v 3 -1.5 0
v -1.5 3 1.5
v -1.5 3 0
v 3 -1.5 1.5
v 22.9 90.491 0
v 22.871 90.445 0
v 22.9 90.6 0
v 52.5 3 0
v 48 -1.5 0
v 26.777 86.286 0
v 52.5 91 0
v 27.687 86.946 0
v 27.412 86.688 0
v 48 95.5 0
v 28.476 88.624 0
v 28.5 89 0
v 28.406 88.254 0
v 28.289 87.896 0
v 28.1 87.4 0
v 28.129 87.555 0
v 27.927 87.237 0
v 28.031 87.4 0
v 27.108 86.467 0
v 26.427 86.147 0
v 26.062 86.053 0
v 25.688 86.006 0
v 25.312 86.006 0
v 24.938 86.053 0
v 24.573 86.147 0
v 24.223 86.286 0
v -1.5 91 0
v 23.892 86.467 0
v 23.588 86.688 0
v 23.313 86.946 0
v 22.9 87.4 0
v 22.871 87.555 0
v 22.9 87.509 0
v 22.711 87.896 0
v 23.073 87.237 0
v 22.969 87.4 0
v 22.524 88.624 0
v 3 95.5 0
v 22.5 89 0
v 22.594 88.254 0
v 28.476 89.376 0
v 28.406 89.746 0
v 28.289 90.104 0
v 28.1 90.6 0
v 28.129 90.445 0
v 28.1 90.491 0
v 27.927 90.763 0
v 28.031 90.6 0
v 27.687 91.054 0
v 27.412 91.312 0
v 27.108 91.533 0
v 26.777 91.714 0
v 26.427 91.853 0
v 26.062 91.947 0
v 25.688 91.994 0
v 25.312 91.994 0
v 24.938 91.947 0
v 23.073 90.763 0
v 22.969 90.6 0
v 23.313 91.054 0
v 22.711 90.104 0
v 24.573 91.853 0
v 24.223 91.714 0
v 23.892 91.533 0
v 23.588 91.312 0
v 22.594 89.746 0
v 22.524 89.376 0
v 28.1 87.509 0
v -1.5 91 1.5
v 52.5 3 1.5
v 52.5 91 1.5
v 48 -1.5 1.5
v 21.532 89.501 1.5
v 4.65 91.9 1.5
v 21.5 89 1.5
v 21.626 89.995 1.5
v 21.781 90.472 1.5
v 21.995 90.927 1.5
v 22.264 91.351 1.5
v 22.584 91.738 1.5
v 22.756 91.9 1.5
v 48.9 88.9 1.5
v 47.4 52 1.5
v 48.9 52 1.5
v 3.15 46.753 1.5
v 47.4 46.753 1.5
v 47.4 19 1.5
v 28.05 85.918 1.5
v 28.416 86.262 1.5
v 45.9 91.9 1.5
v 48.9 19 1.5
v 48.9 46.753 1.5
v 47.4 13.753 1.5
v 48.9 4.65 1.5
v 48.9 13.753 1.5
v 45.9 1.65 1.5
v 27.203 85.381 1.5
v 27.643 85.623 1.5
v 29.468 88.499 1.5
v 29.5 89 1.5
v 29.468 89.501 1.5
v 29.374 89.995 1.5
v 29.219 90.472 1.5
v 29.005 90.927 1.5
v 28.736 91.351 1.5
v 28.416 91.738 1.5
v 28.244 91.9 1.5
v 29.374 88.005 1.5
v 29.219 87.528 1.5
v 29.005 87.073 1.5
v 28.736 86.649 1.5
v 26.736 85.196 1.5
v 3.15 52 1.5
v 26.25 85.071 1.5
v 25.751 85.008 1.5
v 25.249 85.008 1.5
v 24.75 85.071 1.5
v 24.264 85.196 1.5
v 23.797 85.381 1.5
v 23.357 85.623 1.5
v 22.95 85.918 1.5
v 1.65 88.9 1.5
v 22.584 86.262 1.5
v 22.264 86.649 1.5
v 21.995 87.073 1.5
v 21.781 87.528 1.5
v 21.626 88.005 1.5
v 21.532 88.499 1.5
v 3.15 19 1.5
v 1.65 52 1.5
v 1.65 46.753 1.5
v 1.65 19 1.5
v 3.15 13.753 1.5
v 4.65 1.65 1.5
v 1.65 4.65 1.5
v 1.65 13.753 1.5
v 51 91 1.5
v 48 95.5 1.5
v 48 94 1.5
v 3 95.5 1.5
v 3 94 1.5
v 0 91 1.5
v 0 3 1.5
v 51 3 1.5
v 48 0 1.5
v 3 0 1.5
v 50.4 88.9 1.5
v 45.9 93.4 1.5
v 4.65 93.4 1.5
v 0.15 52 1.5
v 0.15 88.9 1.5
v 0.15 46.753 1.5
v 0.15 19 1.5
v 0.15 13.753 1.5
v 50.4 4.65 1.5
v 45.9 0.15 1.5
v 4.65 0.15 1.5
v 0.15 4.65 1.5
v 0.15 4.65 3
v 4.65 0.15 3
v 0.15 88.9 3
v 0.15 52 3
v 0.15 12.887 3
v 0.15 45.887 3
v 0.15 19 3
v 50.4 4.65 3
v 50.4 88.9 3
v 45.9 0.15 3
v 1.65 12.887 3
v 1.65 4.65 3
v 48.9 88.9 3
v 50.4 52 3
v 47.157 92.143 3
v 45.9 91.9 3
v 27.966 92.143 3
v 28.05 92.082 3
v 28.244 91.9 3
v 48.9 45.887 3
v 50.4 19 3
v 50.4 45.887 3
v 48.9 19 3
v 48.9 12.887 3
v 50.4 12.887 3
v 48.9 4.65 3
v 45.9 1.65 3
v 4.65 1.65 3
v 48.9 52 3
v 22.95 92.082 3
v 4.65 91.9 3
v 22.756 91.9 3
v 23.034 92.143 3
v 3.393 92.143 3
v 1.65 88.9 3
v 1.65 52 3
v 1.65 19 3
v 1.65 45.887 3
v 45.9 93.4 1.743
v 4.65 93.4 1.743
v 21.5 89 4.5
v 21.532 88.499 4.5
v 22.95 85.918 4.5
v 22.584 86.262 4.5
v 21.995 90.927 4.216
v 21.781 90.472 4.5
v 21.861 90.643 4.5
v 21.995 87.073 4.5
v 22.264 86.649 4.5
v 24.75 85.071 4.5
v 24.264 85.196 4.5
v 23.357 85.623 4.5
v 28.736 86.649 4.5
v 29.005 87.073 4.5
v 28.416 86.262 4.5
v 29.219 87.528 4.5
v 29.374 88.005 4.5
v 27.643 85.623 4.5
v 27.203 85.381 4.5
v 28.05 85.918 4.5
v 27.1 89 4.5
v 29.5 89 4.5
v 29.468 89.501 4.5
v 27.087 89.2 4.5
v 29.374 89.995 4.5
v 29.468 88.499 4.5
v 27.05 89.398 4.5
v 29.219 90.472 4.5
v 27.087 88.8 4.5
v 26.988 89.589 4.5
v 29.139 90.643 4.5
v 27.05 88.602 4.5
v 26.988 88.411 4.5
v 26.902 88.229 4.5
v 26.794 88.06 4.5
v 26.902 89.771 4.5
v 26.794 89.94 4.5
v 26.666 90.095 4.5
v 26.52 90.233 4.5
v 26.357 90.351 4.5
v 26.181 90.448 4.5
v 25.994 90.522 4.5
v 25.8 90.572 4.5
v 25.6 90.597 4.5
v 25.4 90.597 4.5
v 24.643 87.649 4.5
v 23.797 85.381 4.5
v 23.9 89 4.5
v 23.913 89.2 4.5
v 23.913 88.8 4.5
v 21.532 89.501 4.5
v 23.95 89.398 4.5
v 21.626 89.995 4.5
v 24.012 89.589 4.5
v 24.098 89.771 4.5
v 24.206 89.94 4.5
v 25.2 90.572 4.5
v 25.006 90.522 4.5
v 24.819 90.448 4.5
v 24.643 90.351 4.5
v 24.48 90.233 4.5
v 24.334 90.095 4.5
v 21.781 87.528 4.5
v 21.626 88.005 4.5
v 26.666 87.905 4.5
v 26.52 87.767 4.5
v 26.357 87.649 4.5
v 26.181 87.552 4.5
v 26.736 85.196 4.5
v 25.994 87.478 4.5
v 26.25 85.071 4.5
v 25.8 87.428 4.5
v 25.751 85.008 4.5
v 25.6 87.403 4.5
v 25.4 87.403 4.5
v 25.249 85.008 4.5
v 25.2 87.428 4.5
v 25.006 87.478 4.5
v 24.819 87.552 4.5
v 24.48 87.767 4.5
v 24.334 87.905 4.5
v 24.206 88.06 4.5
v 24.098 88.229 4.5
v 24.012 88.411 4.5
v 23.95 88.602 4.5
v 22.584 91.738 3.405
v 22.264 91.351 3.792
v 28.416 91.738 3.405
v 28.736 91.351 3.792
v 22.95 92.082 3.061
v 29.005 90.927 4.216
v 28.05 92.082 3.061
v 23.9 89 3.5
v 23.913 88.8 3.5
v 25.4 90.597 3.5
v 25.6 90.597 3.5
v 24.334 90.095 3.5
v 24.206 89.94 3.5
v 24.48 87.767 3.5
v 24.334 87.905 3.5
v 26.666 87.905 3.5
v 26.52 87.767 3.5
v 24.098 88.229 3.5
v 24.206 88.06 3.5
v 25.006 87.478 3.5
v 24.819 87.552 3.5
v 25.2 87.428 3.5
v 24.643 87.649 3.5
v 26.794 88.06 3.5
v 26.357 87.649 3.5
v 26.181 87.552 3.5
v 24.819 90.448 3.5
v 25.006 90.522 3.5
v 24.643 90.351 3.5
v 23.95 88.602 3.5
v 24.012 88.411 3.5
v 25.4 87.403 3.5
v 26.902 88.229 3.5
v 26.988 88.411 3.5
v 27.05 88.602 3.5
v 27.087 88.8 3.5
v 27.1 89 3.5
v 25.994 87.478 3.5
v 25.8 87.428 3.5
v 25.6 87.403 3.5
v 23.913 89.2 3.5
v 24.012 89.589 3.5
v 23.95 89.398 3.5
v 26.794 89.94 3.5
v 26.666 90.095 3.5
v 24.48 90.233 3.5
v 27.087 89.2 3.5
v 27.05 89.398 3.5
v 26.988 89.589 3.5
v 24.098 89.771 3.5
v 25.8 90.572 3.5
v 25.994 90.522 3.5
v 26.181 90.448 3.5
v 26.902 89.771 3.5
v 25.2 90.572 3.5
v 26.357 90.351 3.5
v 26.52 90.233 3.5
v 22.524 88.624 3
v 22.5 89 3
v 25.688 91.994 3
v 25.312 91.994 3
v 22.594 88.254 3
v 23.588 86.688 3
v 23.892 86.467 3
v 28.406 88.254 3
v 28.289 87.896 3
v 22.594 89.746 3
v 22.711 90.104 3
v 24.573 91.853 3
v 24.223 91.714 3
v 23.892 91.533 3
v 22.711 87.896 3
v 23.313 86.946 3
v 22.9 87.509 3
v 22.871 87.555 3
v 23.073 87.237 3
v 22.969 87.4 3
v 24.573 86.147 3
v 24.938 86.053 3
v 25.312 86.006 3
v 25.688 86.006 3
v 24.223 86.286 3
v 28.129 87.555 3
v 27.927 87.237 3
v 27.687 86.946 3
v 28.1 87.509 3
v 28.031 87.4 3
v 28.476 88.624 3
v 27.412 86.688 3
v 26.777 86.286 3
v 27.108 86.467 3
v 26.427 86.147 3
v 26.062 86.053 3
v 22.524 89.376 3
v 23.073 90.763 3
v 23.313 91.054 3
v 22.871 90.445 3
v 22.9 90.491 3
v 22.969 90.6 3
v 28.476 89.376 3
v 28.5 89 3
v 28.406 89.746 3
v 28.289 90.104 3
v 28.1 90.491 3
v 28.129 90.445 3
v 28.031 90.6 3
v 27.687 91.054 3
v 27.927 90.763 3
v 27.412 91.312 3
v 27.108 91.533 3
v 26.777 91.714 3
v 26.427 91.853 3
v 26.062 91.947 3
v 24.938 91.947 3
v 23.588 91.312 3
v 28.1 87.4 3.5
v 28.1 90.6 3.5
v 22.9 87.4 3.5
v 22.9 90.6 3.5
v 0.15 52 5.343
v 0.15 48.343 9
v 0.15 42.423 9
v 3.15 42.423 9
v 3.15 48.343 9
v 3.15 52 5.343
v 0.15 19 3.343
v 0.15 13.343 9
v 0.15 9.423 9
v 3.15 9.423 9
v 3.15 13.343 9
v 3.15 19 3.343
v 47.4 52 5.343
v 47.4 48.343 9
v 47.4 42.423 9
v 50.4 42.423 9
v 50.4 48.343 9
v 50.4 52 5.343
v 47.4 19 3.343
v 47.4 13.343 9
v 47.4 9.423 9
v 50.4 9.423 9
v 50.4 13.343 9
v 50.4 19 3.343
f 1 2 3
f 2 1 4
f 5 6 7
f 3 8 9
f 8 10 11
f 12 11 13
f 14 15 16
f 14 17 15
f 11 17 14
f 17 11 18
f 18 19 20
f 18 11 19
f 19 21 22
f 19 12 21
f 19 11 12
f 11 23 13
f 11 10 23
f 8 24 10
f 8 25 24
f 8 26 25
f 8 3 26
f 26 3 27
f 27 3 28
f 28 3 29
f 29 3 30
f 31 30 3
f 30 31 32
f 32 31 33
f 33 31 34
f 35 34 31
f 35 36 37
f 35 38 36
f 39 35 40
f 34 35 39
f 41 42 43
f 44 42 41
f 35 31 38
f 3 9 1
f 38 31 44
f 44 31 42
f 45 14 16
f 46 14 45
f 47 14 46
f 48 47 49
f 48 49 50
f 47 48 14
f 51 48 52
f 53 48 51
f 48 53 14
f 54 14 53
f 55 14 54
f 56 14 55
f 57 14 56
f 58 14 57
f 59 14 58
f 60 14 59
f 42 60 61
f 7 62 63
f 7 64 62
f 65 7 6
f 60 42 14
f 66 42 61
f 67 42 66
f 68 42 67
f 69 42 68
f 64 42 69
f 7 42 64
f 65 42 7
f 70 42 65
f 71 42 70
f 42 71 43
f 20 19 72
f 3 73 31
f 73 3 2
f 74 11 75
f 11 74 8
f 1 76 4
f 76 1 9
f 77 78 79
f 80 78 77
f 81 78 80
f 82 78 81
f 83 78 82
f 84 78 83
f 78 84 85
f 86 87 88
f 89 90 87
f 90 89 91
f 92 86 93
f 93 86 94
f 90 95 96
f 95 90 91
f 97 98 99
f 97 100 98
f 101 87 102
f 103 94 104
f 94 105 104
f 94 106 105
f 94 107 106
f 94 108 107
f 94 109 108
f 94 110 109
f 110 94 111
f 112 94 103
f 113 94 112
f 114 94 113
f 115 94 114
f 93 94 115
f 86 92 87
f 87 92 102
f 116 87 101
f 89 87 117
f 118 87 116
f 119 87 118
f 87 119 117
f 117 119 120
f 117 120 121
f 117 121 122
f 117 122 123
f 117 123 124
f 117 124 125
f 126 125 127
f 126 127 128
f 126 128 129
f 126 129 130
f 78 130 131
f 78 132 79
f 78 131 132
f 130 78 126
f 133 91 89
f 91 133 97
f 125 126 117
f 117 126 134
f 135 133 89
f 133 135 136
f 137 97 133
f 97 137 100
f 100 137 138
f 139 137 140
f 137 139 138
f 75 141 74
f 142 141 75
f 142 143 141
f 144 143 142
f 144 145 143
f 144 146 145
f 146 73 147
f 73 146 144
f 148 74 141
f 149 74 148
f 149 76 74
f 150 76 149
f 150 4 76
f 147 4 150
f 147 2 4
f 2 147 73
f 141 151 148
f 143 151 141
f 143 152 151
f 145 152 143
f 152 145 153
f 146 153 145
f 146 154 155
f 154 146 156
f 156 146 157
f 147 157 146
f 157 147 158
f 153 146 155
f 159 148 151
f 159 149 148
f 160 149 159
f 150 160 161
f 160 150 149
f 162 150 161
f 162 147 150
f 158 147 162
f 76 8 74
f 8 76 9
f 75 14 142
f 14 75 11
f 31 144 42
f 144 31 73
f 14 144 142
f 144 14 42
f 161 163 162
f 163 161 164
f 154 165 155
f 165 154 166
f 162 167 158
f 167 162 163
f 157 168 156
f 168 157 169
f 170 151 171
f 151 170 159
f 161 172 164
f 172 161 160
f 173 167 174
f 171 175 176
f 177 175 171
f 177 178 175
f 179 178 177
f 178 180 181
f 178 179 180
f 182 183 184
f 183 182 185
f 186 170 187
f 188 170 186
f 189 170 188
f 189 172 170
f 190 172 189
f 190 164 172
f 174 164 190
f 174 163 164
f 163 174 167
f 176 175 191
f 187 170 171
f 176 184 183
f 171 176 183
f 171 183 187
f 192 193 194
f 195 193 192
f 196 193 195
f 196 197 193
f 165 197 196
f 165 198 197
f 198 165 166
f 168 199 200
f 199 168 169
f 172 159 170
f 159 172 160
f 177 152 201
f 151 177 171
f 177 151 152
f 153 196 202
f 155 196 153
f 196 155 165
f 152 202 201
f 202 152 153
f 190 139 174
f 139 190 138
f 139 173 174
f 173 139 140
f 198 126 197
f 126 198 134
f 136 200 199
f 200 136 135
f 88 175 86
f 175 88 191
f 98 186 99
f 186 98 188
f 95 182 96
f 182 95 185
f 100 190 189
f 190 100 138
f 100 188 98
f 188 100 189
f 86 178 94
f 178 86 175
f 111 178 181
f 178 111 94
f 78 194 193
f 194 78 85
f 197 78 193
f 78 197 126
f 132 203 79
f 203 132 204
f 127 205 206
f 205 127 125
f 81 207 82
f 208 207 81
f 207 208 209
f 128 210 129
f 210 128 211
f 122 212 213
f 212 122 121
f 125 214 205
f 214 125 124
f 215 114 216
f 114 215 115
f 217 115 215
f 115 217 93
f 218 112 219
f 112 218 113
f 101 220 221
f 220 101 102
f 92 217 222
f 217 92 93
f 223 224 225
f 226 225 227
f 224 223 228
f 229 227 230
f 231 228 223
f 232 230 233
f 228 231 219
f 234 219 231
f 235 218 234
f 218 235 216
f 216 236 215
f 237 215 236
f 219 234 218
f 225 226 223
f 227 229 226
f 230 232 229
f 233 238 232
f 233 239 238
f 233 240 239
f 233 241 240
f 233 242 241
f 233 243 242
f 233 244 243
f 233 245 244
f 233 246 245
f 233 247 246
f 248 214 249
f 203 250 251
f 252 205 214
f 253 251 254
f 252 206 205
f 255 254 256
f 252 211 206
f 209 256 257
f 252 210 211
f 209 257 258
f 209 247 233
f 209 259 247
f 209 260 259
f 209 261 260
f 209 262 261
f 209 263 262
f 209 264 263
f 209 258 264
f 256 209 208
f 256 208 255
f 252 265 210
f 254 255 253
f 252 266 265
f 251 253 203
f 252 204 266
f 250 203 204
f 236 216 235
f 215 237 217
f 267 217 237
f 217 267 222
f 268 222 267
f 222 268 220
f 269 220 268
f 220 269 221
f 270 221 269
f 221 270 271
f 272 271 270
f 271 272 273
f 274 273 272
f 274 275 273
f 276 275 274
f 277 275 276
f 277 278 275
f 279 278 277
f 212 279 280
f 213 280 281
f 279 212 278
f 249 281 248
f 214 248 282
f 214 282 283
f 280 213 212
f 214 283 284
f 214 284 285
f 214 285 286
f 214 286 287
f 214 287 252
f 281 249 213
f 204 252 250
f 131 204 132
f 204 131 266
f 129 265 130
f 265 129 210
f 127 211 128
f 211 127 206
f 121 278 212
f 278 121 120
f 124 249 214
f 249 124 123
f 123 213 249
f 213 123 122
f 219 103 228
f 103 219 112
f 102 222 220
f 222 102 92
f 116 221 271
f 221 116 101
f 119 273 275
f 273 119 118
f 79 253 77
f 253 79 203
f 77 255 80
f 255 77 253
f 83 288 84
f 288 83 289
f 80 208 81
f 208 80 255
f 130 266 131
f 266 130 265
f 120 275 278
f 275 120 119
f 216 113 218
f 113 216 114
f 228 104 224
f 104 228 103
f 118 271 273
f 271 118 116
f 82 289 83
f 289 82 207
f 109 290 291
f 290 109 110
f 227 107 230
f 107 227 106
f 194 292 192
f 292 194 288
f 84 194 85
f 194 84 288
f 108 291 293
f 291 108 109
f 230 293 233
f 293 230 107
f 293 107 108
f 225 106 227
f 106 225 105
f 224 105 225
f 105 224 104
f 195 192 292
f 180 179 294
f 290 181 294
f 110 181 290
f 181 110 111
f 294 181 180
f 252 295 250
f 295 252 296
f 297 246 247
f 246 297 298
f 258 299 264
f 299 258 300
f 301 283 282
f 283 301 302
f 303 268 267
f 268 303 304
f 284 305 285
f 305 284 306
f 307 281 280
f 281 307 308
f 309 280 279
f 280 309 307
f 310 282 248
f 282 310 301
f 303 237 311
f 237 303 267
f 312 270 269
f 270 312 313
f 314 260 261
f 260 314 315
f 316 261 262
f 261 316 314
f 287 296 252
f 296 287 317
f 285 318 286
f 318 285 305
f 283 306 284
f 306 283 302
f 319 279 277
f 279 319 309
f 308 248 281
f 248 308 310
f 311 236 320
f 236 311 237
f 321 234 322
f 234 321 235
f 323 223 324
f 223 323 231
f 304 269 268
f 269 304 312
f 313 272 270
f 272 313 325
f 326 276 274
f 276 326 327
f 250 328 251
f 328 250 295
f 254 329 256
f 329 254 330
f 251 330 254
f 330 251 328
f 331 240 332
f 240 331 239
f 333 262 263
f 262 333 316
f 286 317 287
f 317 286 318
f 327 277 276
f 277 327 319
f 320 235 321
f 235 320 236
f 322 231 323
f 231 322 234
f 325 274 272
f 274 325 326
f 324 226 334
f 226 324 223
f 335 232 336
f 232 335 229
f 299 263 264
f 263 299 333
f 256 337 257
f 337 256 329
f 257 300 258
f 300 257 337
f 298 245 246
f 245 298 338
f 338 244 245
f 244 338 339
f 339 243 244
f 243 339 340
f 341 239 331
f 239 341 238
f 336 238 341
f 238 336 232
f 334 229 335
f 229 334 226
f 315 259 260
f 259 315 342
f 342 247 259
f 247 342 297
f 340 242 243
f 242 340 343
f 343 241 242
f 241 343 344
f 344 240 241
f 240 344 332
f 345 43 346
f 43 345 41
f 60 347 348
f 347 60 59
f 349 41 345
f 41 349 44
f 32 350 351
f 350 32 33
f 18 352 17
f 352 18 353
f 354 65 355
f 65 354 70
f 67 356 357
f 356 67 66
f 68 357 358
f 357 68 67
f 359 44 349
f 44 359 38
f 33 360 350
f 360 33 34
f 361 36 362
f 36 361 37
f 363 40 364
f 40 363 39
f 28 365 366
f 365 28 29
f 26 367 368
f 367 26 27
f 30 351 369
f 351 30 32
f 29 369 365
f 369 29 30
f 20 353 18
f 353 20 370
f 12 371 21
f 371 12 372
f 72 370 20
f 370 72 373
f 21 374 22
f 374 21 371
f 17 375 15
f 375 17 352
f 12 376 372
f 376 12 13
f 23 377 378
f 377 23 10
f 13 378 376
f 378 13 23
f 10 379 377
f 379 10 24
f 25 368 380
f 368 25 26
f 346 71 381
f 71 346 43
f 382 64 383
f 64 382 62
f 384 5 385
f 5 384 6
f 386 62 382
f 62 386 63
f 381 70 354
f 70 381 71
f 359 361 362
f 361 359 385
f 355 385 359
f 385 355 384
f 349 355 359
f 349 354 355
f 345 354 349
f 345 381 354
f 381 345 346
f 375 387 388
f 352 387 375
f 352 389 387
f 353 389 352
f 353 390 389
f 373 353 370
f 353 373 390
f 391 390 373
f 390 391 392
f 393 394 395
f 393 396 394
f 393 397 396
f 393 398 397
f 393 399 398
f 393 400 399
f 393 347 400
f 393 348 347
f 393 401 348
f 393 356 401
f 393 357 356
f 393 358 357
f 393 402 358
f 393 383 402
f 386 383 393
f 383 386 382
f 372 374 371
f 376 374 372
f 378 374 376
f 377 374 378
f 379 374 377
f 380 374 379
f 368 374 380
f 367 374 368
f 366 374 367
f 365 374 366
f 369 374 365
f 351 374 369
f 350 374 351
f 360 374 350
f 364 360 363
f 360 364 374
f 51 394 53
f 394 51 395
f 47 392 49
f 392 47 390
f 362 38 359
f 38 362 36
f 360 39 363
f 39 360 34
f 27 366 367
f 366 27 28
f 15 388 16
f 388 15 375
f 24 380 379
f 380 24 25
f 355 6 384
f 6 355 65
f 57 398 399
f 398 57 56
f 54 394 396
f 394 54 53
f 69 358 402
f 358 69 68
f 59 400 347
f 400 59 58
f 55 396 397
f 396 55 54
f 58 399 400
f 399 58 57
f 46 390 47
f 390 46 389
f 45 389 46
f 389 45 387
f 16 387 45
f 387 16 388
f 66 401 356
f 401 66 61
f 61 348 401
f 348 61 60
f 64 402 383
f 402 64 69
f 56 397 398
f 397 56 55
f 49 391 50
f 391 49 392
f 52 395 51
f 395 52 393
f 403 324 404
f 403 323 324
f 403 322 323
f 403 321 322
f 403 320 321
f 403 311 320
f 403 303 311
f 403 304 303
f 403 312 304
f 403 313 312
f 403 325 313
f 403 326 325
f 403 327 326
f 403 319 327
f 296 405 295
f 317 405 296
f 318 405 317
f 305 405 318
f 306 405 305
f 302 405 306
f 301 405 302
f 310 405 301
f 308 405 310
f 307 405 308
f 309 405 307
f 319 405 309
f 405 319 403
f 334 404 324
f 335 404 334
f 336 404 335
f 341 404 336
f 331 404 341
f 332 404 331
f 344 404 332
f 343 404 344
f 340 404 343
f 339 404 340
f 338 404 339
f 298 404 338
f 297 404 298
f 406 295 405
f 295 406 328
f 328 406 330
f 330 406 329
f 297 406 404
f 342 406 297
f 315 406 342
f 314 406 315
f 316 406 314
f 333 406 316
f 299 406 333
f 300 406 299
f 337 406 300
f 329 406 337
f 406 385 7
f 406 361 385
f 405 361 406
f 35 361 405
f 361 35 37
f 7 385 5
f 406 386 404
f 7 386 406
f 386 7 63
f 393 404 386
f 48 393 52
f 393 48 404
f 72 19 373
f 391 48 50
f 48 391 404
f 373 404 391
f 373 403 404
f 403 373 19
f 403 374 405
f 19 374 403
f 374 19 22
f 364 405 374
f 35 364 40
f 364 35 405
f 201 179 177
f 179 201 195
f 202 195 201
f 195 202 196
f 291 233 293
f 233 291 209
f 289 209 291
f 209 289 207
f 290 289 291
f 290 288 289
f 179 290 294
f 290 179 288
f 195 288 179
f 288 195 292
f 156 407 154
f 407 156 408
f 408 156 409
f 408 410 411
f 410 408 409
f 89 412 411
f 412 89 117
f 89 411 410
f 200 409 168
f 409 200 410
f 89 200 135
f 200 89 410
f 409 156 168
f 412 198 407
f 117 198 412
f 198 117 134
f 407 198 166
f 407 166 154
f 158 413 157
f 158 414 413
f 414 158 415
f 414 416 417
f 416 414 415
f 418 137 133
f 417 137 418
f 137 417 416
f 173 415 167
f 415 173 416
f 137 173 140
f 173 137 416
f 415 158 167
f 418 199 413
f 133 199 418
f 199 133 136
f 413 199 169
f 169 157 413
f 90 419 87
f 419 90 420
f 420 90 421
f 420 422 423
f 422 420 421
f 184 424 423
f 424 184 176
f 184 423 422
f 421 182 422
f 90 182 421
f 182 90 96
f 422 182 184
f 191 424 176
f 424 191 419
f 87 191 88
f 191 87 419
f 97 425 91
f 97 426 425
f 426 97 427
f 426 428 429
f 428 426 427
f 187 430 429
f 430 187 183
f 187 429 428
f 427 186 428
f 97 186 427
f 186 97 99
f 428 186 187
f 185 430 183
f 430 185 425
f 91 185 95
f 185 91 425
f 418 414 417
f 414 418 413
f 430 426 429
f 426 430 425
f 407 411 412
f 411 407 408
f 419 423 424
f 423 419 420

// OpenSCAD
// PRUSA MM upgrade
// SuperSwitch-cover-v2
// GNU GPL v3
// Josef Průša <iam@josefprusa.cz> and contributors
// http://www.reprap.org/wiki/Prusa_Mendel
// http://prusamendel.org

$fn=50;
heightY=94;
widthX=51;
wall=1.5;
txt="Y";
pcb = 14;   // pcb height over bottom

boxtop(51,heightY,2,3,1.5);


module triangle(long, width, ukos){
   translate([0,8,-0.5]) cube([width,long,8+0.5], center=false);
    difference() {
        cube([width,8,8], center=false);
        translate([-1,3,-5]) rotate([30,0,0])cube([6,6,13], center=false);
        if (ukos==1) { 
        }
    }
}

module boxtop(x,y,z,zz,s){
difference() {
    union() {    
        box(x,y,s,zz,s);
        translate([1.1*s,1.1*s,0]) box(x-2.5*s,y-2.5*s,2*s,zz,s);
        translate([widthX/2,heightY-5,0]) rotate([0,0,180]) cylinder(h=s+3, r=4, center=false);
    }
    translate([widthX/2,heightY-5,-2]) rotate([0,0,180]) cylinder(h=10, r=1.6, center=false);
        translate([widthX/2,heightY-5,-1]) rotate([0,0,180]) cylinder(h=4, r=3, center=false);
        translate([widthX/2,heightY-5,1]) rotate([0,0,180]) cube([5.2,3.2,5], center=true); 
    
        translate([widthX/2,92.2,8.6]) rotate([45,0,0])cube([widthX,8,12], center=true);           
        // TXT
        translate([widthX/2,heightY/2-12,3]){rotate([0,180,0]){
            linear_extrude(height = wall+2, center = false, convexity = 5, twist = 0, slices = 20, scale = 1.0) {

        }}}
}
    difference() {
        union() {    
        translate([0.15,heightY/2-7,1]) rotate([0,0,0]) triangle(4,3,0);
        translate([0.15,7,1]) rotate([0,0,0]) triangle(4,3,0);

        translate([widthX-3.6,heightY/2-7,1]) rotate([0,0,0]) triangle(4,3,0);
        translate([widthX-3.6,7,1]) rotate([0,0,0]) triangle(4,3,0);
        }
        translate([widthX/2,20,8]) rotate([45,0,0])cube([widthX,8,12], center=true);           
        translate([widthX/2,55,8]) rotate([45,0,0])cube([widthX,8,12], center=true);           
        translate([widthX/2,90,8]) rotate([45,0,0])cube([widthX,8,12], center=true);           
    }
}

module box(x,y,z,zz,s){   // x y z - round edges
    difference() {
        union() {
            hull() {
                translate([zz,zz,0]) cylinder(h=z, r=zz+s, center=false, $fn=4);
                translate([x-zz,zz,0]) cylinder(h=z, r=zz+s, center=false, $fn=4);
                translate([zz,y-zz,0]) cylinder(h=z, r=zz+s, center=false, $fn=4);
                translate([x-zz,y-zz,0]) cylinder(h=z, r=zz+s, center=false, $fn=4);
            }
        }
        hull() {
            translate([zz,zz,s]) cylinder(h=z, r=zz, center=false, $fn=4);
            translate([x-zz,zz,s]) cylinder(h=z, r=zz, center=false, $fn=4);
            translate([zz,y-zz,s]) cylinder(h=z, r=zz, center=false, $fn=4);
            translate([x-zz,y-zz,s]) cylinder(h=z, r=zz, center=false, $fn=4);
        }
    }
}
